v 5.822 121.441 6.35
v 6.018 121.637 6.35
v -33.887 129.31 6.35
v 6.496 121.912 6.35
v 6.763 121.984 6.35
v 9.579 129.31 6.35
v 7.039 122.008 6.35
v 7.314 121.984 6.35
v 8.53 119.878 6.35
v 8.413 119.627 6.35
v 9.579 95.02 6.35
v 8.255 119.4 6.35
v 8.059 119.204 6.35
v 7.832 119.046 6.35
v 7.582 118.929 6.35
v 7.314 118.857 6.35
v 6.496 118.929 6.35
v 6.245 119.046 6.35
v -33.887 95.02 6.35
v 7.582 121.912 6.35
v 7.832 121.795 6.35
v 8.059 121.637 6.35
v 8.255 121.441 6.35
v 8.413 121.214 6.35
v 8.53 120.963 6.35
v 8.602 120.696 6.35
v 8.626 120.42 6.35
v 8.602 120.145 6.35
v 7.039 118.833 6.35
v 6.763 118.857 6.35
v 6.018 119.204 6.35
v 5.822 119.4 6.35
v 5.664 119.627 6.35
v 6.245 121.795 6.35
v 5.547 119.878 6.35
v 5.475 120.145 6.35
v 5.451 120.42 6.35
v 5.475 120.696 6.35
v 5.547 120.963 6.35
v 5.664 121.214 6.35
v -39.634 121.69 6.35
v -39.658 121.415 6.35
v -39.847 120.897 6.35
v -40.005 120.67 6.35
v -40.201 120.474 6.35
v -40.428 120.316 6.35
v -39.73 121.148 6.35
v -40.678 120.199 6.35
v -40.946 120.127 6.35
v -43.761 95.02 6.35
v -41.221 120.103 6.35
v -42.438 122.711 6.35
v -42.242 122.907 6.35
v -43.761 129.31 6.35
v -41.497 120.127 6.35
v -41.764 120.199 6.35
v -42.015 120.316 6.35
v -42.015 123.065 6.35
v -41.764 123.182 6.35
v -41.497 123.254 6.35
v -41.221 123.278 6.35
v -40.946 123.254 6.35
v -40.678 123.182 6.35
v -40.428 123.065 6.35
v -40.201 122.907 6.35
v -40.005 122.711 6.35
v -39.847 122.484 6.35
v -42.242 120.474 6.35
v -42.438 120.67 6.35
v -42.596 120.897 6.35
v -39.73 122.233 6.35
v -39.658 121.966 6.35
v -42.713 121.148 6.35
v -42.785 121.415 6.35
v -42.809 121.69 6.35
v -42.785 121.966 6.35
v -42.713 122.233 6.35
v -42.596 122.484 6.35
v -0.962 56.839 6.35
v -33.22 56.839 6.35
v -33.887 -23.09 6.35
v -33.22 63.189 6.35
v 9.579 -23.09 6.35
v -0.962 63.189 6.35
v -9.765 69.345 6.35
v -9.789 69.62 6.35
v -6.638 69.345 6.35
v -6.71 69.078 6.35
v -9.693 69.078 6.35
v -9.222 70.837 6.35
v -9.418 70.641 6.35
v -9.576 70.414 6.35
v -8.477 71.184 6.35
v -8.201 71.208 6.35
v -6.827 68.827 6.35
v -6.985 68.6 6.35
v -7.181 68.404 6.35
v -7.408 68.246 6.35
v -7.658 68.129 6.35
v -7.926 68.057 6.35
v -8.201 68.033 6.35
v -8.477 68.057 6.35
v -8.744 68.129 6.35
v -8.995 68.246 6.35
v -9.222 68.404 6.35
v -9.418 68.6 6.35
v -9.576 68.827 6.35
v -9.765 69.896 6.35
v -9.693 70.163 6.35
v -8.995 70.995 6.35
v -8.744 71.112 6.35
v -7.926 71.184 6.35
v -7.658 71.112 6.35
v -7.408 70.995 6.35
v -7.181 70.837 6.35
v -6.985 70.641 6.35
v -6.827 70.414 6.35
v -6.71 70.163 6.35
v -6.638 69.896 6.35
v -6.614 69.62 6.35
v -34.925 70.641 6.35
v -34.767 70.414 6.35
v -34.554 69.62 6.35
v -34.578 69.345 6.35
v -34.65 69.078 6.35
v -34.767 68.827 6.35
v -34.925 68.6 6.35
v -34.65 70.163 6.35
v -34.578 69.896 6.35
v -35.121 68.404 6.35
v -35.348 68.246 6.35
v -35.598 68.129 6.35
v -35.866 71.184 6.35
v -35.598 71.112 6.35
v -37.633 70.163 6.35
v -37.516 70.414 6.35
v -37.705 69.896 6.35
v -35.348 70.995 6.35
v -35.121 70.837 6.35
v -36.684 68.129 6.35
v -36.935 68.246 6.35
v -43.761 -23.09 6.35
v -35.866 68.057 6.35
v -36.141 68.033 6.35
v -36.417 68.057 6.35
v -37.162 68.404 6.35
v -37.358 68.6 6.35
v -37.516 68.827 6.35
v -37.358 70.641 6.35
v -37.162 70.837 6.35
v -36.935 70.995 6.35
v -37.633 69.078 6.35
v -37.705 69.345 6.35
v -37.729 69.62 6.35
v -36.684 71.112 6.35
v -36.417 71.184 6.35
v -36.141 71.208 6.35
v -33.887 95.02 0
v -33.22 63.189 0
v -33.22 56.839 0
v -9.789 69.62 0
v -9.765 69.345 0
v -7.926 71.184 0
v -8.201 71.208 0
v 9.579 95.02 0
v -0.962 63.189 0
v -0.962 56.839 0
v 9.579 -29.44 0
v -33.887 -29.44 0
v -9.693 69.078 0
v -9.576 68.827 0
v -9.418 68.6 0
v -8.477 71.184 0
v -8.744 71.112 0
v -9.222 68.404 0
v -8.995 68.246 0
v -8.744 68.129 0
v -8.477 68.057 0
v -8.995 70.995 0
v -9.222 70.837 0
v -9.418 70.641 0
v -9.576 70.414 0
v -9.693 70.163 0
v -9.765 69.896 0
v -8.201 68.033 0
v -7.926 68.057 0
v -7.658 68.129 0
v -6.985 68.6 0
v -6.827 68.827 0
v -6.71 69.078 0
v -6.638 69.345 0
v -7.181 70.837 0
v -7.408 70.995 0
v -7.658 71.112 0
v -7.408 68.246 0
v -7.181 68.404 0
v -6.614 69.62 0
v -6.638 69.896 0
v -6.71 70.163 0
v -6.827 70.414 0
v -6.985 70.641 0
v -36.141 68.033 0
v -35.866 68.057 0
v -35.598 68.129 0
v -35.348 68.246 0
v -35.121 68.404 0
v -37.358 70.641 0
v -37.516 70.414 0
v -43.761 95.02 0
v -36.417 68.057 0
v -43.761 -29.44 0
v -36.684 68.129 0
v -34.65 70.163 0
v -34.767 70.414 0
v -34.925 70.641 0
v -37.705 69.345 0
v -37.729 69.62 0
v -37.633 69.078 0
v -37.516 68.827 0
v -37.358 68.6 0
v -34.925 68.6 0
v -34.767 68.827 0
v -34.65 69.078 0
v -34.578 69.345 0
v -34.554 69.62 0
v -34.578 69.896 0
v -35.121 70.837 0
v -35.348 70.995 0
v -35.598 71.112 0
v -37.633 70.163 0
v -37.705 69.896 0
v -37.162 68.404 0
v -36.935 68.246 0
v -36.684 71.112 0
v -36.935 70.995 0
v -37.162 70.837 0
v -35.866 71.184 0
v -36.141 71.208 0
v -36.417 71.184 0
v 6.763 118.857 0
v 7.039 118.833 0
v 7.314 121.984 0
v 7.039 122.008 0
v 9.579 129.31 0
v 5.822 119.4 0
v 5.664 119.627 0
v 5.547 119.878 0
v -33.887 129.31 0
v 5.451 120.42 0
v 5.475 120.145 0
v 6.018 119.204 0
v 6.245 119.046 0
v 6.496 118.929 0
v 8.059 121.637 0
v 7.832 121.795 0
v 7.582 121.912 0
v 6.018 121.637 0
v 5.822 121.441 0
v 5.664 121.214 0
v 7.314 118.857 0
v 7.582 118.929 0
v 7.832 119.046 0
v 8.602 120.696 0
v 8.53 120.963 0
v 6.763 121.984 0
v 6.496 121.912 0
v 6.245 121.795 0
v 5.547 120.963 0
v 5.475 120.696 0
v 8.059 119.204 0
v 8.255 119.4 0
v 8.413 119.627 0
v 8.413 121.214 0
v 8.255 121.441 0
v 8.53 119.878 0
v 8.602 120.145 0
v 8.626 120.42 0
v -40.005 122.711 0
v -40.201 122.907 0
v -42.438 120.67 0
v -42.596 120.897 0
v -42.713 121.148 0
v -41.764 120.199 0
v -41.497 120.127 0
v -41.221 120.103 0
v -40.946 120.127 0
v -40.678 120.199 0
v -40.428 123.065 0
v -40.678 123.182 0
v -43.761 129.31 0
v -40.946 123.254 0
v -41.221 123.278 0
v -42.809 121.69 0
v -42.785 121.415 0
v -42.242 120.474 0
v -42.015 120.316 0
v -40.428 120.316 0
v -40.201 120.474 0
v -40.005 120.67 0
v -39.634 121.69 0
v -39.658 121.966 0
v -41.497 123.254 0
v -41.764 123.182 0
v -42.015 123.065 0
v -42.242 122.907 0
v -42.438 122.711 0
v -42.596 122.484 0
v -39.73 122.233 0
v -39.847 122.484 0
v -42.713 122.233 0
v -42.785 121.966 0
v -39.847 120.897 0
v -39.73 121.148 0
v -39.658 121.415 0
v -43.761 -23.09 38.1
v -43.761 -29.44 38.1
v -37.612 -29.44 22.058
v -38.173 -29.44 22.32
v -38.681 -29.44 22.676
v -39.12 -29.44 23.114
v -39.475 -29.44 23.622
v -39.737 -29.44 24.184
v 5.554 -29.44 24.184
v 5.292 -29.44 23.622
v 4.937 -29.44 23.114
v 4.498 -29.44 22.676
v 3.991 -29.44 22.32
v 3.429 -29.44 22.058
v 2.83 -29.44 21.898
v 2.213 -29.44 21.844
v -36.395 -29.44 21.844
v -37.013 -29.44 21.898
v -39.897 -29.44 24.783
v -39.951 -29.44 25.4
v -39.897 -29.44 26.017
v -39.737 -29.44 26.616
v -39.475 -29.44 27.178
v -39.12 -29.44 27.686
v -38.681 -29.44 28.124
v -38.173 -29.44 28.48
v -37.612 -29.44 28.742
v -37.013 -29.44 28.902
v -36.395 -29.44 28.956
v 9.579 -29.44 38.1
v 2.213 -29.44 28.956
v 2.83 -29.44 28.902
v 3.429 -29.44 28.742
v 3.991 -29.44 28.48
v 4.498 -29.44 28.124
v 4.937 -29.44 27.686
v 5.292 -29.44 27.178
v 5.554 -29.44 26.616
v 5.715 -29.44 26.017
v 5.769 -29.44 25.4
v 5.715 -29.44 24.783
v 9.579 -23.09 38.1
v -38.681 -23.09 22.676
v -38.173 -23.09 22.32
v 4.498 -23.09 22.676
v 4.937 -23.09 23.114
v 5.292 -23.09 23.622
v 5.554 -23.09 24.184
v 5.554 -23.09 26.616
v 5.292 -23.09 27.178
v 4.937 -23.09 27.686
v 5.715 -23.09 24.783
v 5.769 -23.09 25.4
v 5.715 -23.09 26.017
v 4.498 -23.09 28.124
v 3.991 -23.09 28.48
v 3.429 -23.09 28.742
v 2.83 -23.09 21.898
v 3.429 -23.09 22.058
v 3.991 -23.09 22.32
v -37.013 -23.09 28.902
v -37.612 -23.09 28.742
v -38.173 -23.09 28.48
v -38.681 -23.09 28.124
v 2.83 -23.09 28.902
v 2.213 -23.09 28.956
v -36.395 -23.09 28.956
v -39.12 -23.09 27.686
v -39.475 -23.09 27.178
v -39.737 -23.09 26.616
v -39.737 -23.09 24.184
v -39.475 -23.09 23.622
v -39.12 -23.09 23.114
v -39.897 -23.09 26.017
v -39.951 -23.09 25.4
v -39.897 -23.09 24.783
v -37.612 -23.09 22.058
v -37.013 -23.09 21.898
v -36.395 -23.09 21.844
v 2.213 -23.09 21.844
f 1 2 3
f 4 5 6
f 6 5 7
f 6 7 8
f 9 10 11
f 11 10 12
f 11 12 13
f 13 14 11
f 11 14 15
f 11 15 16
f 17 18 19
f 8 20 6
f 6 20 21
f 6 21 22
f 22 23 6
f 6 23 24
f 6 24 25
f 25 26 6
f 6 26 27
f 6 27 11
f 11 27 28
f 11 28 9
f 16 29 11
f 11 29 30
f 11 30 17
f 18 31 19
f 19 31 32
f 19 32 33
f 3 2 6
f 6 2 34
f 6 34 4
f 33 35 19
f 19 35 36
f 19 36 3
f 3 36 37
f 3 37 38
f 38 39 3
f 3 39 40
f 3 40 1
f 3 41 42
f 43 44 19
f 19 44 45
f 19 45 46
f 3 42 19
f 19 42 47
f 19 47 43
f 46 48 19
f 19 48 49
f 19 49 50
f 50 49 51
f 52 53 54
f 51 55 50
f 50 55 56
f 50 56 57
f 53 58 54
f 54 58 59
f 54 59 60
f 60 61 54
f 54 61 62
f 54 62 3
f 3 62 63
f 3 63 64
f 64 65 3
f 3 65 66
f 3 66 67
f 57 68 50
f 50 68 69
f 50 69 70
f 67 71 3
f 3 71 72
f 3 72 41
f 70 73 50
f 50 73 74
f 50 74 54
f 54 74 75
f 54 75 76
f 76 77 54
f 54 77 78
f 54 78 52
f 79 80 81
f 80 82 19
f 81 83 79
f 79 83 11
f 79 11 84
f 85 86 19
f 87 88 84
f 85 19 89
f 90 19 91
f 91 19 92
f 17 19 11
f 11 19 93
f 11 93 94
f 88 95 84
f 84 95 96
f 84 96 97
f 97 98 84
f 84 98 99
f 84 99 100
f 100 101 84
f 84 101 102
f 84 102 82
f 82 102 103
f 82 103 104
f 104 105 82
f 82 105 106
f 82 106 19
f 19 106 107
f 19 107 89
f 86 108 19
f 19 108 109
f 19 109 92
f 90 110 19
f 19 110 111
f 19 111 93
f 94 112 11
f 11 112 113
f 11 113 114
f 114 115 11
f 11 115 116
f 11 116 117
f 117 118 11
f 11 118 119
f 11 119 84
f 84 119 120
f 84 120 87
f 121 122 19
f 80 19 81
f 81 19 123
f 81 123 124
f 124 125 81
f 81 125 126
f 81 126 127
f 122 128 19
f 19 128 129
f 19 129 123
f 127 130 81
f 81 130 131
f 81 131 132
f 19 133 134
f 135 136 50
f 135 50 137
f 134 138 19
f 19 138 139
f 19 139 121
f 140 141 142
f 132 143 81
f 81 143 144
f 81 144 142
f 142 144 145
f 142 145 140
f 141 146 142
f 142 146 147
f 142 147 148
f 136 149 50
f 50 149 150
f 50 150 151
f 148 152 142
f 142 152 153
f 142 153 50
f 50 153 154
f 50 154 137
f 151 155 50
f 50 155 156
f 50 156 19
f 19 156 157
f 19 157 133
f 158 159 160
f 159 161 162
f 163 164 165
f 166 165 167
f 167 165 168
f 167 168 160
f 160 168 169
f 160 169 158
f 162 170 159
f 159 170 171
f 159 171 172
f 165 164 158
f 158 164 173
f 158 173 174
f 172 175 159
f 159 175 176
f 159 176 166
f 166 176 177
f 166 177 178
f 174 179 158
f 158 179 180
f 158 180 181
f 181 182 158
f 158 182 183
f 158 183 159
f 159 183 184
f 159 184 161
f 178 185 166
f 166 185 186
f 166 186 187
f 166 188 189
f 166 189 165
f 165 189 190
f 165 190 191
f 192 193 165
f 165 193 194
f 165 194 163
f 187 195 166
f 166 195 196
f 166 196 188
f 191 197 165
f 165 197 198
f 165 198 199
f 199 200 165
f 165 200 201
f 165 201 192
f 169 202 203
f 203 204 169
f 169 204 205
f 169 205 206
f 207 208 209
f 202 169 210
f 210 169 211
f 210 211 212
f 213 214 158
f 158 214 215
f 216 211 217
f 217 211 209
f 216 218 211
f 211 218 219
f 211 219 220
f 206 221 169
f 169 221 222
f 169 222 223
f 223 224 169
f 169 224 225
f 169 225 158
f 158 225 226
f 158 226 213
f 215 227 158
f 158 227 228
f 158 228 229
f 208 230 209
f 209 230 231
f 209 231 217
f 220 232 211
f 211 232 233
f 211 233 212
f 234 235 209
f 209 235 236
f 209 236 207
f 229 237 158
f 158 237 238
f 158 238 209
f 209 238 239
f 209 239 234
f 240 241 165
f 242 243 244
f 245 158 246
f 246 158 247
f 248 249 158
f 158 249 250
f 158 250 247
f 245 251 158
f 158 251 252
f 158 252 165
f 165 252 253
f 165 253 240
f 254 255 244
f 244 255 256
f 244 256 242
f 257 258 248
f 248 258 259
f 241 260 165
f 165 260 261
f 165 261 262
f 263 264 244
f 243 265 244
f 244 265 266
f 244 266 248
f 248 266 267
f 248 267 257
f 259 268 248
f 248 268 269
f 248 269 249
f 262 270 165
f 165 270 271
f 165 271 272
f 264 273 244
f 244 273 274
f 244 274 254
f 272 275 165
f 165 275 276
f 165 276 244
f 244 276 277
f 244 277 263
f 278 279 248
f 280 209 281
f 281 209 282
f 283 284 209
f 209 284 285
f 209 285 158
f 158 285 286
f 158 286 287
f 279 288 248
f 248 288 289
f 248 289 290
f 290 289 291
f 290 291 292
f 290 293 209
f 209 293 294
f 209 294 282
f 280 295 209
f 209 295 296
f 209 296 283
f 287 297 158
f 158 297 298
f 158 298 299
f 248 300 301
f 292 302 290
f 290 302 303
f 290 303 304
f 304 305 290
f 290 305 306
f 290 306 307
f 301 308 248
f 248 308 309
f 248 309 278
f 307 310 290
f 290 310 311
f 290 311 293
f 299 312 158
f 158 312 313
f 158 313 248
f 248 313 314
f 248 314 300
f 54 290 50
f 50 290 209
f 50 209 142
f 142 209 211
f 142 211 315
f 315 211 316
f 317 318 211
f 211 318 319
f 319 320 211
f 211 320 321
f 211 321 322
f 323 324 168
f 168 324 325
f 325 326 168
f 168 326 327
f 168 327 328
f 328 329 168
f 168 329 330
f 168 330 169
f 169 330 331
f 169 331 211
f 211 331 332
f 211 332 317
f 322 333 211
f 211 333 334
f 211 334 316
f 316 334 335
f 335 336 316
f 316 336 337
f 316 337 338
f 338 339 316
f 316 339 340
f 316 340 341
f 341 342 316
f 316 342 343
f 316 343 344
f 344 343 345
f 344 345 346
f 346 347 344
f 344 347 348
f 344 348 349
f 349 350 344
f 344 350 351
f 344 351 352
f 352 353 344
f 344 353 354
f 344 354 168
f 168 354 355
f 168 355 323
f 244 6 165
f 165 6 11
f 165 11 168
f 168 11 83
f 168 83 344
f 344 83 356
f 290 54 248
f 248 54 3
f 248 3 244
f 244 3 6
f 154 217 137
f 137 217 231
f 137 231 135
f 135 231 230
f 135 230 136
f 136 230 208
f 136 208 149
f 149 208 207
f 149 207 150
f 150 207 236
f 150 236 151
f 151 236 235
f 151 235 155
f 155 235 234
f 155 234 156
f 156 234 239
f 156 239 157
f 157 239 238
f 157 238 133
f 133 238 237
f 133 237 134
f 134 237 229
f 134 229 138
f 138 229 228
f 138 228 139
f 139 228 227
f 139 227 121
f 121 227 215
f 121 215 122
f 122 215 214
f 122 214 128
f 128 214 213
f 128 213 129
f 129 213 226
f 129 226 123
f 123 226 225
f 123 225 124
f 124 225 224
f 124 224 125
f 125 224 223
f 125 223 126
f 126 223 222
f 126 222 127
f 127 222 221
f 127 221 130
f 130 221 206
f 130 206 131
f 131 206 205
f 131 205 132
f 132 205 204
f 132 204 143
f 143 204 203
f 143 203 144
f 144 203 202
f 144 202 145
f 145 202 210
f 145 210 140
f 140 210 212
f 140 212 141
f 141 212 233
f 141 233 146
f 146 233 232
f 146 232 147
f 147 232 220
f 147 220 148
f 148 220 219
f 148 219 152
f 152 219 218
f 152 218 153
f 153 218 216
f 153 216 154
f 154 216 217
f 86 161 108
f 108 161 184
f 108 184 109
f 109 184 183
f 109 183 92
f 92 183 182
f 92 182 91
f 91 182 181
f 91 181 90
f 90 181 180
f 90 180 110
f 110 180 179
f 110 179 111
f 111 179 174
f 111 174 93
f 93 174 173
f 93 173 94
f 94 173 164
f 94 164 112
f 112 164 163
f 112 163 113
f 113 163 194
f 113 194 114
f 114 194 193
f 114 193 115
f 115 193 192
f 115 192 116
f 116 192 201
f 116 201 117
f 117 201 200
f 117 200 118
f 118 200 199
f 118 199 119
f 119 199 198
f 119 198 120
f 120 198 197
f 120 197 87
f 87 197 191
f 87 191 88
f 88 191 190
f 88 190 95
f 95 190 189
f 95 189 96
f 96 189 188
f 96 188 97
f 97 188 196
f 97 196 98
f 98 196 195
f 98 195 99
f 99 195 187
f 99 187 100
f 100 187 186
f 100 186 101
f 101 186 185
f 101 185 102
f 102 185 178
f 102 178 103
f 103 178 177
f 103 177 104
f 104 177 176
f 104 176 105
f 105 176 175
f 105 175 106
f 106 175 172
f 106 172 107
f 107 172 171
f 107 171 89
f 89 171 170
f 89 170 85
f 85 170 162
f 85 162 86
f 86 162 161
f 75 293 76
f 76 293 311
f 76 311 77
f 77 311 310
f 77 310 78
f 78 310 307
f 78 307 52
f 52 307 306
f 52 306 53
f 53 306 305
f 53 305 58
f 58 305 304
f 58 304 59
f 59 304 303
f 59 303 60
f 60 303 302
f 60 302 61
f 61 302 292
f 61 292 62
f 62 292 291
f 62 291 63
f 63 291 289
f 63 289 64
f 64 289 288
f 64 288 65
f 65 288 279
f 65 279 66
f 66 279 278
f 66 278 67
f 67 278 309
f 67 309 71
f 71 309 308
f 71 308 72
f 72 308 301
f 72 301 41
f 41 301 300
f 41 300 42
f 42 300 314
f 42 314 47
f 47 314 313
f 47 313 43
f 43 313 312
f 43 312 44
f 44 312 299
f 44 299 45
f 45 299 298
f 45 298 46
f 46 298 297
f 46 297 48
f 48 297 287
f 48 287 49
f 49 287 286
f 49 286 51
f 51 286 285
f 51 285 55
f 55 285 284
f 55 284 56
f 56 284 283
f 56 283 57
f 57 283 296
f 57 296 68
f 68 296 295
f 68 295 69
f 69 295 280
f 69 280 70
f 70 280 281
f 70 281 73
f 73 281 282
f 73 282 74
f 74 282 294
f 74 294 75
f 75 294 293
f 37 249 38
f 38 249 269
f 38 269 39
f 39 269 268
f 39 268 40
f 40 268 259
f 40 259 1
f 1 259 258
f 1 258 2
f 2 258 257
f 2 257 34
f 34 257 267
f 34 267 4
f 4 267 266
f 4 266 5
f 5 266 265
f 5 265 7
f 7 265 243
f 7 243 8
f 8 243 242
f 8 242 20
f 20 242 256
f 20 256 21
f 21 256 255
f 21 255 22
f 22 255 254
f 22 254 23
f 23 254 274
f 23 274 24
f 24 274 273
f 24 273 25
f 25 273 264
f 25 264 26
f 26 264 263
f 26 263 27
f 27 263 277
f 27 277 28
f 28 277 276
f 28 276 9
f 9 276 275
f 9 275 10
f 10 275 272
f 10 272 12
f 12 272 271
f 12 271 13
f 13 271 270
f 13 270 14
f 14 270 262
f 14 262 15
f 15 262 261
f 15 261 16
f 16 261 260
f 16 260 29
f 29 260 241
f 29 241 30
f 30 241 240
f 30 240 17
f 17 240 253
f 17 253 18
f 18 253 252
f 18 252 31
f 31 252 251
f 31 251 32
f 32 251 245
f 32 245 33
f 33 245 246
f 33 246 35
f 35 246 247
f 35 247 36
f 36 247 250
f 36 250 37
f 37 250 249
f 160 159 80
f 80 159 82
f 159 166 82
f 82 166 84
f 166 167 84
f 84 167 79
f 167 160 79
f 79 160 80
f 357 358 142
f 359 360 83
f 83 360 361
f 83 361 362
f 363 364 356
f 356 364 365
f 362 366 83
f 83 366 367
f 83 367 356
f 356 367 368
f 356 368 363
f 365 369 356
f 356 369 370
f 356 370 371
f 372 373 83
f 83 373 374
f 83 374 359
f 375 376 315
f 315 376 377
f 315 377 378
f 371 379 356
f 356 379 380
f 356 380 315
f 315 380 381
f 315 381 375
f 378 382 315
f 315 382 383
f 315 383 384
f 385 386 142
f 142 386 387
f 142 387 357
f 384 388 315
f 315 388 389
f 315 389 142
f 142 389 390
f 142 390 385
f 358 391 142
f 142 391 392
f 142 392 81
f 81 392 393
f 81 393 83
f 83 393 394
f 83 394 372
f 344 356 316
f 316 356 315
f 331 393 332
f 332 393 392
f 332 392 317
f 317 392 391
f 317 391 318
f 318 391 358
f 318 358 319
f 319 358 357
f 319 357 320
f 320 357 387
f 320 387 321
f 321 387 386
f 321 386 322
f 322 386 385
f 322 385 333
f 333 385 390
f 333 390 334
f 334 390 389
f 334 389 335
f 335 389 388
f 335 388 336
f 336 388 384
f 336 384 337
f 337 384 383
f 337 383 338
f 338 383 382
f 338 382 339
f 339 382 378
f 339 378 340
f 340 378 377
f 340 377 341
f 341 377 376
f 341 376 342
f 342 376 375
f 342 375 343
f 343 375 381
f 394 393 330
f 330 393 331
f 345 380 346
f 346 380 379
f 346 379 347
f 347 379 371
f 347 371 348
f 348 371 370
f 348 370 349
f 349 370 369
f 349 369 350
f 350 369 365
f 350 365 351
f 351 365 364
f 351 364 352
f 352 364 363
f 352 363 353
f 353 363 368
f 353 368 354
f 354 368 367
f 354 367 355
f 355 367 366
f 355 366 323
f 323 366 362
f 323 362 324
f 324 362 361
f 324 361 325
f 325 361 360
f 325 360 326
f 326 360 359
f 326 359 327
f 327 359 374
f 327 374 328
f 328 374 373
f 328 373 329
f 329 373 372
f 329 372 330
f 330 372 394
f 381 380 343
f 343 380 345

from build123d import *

# Parameters (mm, degrees)
SKETCH1_W           = 53.34
SKETCH1_H           = 158.75
SKETCH1_R           = 1.5875
BOSS_EXTRUDE1_DEPTH = 6.35
SKETCH2_3_W         = 32.258
SKETCH2_3_H         = 6.35
CUT_EXTRUDE2_DEPTH  = 137.662311459
SKETCH6_W           = 53.34
SKETCH6_H           = 6.35
BOSS_EXTRUDE5_DEPTH = 31.75
CUT_EXTRUDE3_REACH  = 165.072


with BuildPart() as part:
    # Sketch1 → Boss-Extrude1 (new body)
    with BuildSketch(Plane.XY):
        with Locations((-17.091445783, 49.935481928)):
            Rectangle(SKETCH1_W, SKETCH1_H)
        with Locations((-36.141445783, 69.620481928)):
            Circle(SKETCH1_R, mode=Mode.SUBTRACT)
        with Locations((-8.201445783, 69.620481928)):
            Circle(SKETCH1_R, mode=Mode.SUBTRACT)
        with Locations((-41.221445783, 121.690481928)):
            Circle(SKETCH1_R, mode=Mode.SUBTRACT)
        with Locations((7.038554217, 120.420481928)):
            Circle(SKETCH1_R, mode=Mode.SUBTRACT)
    extrude(amount=BOSS_EXTRUDE1_DEPTH)

    # Sketch2<3> → Cut-Extrude2 (cut, through all)
    with BuildSketch(Plane.XY.offset(6.35)):
        with Locations((-17.091445783, 60.014063864)):
            Rectangle(SKETCH2_3_W, SKETCH2_3_H)
    extrude(amount=-CUT_EXTRUDE2_DEPTH, mode=Mode.SUBTRACT)

    # Sketch6 → Boss-Extrude5 (add)
    with BuildSketch(Plane.XY.offset(6.35)):
        with Locations((-17.091445783, -26.264518072)):
            Rectangle(SKETCH6_W, SKETCH6_H)
    extrude(amount=BOSS_EXTRUDE5_DEPTH)

    # Sketch7 → Cut-Extrude3 (cut, up to next)
    with BuildSketch(Plane(origin=(0, -23.089518072, 0), x_dir=(1, 0, 0), z_dir=(0, 1, 0)), mode=Mode.PRIVATE) as cut_extrude3_sk1:
        with BuildLine():
            Line((-36.395445783, -21.844), (2.212554217, -21.844))
            ThreePointArc((2.212554217, -21.844), (5.768554217, -25.4), (2.212554217, -28.956))
            Line((2.212554217, -28.956), (-36.395445783, -28.956))
            ThreePointArc((-36.395445783, -28.956), (-39.951445783, -25.4), (-36.395445783, -21.844))
        make_face()
    cut_extrude3_tool1 = extrude(cut_extrude3_sk1.sketch, amount=-CUT_EXTRUDE3_REACH, mode=Mode.PRIVATE) & part.part
    add(cut_extrude3_tool1.solids().sort_by_distance((-17.091446, -23.089518, 25.4))[0], mode=Mode.SUBTRACT)


solid = part.part
